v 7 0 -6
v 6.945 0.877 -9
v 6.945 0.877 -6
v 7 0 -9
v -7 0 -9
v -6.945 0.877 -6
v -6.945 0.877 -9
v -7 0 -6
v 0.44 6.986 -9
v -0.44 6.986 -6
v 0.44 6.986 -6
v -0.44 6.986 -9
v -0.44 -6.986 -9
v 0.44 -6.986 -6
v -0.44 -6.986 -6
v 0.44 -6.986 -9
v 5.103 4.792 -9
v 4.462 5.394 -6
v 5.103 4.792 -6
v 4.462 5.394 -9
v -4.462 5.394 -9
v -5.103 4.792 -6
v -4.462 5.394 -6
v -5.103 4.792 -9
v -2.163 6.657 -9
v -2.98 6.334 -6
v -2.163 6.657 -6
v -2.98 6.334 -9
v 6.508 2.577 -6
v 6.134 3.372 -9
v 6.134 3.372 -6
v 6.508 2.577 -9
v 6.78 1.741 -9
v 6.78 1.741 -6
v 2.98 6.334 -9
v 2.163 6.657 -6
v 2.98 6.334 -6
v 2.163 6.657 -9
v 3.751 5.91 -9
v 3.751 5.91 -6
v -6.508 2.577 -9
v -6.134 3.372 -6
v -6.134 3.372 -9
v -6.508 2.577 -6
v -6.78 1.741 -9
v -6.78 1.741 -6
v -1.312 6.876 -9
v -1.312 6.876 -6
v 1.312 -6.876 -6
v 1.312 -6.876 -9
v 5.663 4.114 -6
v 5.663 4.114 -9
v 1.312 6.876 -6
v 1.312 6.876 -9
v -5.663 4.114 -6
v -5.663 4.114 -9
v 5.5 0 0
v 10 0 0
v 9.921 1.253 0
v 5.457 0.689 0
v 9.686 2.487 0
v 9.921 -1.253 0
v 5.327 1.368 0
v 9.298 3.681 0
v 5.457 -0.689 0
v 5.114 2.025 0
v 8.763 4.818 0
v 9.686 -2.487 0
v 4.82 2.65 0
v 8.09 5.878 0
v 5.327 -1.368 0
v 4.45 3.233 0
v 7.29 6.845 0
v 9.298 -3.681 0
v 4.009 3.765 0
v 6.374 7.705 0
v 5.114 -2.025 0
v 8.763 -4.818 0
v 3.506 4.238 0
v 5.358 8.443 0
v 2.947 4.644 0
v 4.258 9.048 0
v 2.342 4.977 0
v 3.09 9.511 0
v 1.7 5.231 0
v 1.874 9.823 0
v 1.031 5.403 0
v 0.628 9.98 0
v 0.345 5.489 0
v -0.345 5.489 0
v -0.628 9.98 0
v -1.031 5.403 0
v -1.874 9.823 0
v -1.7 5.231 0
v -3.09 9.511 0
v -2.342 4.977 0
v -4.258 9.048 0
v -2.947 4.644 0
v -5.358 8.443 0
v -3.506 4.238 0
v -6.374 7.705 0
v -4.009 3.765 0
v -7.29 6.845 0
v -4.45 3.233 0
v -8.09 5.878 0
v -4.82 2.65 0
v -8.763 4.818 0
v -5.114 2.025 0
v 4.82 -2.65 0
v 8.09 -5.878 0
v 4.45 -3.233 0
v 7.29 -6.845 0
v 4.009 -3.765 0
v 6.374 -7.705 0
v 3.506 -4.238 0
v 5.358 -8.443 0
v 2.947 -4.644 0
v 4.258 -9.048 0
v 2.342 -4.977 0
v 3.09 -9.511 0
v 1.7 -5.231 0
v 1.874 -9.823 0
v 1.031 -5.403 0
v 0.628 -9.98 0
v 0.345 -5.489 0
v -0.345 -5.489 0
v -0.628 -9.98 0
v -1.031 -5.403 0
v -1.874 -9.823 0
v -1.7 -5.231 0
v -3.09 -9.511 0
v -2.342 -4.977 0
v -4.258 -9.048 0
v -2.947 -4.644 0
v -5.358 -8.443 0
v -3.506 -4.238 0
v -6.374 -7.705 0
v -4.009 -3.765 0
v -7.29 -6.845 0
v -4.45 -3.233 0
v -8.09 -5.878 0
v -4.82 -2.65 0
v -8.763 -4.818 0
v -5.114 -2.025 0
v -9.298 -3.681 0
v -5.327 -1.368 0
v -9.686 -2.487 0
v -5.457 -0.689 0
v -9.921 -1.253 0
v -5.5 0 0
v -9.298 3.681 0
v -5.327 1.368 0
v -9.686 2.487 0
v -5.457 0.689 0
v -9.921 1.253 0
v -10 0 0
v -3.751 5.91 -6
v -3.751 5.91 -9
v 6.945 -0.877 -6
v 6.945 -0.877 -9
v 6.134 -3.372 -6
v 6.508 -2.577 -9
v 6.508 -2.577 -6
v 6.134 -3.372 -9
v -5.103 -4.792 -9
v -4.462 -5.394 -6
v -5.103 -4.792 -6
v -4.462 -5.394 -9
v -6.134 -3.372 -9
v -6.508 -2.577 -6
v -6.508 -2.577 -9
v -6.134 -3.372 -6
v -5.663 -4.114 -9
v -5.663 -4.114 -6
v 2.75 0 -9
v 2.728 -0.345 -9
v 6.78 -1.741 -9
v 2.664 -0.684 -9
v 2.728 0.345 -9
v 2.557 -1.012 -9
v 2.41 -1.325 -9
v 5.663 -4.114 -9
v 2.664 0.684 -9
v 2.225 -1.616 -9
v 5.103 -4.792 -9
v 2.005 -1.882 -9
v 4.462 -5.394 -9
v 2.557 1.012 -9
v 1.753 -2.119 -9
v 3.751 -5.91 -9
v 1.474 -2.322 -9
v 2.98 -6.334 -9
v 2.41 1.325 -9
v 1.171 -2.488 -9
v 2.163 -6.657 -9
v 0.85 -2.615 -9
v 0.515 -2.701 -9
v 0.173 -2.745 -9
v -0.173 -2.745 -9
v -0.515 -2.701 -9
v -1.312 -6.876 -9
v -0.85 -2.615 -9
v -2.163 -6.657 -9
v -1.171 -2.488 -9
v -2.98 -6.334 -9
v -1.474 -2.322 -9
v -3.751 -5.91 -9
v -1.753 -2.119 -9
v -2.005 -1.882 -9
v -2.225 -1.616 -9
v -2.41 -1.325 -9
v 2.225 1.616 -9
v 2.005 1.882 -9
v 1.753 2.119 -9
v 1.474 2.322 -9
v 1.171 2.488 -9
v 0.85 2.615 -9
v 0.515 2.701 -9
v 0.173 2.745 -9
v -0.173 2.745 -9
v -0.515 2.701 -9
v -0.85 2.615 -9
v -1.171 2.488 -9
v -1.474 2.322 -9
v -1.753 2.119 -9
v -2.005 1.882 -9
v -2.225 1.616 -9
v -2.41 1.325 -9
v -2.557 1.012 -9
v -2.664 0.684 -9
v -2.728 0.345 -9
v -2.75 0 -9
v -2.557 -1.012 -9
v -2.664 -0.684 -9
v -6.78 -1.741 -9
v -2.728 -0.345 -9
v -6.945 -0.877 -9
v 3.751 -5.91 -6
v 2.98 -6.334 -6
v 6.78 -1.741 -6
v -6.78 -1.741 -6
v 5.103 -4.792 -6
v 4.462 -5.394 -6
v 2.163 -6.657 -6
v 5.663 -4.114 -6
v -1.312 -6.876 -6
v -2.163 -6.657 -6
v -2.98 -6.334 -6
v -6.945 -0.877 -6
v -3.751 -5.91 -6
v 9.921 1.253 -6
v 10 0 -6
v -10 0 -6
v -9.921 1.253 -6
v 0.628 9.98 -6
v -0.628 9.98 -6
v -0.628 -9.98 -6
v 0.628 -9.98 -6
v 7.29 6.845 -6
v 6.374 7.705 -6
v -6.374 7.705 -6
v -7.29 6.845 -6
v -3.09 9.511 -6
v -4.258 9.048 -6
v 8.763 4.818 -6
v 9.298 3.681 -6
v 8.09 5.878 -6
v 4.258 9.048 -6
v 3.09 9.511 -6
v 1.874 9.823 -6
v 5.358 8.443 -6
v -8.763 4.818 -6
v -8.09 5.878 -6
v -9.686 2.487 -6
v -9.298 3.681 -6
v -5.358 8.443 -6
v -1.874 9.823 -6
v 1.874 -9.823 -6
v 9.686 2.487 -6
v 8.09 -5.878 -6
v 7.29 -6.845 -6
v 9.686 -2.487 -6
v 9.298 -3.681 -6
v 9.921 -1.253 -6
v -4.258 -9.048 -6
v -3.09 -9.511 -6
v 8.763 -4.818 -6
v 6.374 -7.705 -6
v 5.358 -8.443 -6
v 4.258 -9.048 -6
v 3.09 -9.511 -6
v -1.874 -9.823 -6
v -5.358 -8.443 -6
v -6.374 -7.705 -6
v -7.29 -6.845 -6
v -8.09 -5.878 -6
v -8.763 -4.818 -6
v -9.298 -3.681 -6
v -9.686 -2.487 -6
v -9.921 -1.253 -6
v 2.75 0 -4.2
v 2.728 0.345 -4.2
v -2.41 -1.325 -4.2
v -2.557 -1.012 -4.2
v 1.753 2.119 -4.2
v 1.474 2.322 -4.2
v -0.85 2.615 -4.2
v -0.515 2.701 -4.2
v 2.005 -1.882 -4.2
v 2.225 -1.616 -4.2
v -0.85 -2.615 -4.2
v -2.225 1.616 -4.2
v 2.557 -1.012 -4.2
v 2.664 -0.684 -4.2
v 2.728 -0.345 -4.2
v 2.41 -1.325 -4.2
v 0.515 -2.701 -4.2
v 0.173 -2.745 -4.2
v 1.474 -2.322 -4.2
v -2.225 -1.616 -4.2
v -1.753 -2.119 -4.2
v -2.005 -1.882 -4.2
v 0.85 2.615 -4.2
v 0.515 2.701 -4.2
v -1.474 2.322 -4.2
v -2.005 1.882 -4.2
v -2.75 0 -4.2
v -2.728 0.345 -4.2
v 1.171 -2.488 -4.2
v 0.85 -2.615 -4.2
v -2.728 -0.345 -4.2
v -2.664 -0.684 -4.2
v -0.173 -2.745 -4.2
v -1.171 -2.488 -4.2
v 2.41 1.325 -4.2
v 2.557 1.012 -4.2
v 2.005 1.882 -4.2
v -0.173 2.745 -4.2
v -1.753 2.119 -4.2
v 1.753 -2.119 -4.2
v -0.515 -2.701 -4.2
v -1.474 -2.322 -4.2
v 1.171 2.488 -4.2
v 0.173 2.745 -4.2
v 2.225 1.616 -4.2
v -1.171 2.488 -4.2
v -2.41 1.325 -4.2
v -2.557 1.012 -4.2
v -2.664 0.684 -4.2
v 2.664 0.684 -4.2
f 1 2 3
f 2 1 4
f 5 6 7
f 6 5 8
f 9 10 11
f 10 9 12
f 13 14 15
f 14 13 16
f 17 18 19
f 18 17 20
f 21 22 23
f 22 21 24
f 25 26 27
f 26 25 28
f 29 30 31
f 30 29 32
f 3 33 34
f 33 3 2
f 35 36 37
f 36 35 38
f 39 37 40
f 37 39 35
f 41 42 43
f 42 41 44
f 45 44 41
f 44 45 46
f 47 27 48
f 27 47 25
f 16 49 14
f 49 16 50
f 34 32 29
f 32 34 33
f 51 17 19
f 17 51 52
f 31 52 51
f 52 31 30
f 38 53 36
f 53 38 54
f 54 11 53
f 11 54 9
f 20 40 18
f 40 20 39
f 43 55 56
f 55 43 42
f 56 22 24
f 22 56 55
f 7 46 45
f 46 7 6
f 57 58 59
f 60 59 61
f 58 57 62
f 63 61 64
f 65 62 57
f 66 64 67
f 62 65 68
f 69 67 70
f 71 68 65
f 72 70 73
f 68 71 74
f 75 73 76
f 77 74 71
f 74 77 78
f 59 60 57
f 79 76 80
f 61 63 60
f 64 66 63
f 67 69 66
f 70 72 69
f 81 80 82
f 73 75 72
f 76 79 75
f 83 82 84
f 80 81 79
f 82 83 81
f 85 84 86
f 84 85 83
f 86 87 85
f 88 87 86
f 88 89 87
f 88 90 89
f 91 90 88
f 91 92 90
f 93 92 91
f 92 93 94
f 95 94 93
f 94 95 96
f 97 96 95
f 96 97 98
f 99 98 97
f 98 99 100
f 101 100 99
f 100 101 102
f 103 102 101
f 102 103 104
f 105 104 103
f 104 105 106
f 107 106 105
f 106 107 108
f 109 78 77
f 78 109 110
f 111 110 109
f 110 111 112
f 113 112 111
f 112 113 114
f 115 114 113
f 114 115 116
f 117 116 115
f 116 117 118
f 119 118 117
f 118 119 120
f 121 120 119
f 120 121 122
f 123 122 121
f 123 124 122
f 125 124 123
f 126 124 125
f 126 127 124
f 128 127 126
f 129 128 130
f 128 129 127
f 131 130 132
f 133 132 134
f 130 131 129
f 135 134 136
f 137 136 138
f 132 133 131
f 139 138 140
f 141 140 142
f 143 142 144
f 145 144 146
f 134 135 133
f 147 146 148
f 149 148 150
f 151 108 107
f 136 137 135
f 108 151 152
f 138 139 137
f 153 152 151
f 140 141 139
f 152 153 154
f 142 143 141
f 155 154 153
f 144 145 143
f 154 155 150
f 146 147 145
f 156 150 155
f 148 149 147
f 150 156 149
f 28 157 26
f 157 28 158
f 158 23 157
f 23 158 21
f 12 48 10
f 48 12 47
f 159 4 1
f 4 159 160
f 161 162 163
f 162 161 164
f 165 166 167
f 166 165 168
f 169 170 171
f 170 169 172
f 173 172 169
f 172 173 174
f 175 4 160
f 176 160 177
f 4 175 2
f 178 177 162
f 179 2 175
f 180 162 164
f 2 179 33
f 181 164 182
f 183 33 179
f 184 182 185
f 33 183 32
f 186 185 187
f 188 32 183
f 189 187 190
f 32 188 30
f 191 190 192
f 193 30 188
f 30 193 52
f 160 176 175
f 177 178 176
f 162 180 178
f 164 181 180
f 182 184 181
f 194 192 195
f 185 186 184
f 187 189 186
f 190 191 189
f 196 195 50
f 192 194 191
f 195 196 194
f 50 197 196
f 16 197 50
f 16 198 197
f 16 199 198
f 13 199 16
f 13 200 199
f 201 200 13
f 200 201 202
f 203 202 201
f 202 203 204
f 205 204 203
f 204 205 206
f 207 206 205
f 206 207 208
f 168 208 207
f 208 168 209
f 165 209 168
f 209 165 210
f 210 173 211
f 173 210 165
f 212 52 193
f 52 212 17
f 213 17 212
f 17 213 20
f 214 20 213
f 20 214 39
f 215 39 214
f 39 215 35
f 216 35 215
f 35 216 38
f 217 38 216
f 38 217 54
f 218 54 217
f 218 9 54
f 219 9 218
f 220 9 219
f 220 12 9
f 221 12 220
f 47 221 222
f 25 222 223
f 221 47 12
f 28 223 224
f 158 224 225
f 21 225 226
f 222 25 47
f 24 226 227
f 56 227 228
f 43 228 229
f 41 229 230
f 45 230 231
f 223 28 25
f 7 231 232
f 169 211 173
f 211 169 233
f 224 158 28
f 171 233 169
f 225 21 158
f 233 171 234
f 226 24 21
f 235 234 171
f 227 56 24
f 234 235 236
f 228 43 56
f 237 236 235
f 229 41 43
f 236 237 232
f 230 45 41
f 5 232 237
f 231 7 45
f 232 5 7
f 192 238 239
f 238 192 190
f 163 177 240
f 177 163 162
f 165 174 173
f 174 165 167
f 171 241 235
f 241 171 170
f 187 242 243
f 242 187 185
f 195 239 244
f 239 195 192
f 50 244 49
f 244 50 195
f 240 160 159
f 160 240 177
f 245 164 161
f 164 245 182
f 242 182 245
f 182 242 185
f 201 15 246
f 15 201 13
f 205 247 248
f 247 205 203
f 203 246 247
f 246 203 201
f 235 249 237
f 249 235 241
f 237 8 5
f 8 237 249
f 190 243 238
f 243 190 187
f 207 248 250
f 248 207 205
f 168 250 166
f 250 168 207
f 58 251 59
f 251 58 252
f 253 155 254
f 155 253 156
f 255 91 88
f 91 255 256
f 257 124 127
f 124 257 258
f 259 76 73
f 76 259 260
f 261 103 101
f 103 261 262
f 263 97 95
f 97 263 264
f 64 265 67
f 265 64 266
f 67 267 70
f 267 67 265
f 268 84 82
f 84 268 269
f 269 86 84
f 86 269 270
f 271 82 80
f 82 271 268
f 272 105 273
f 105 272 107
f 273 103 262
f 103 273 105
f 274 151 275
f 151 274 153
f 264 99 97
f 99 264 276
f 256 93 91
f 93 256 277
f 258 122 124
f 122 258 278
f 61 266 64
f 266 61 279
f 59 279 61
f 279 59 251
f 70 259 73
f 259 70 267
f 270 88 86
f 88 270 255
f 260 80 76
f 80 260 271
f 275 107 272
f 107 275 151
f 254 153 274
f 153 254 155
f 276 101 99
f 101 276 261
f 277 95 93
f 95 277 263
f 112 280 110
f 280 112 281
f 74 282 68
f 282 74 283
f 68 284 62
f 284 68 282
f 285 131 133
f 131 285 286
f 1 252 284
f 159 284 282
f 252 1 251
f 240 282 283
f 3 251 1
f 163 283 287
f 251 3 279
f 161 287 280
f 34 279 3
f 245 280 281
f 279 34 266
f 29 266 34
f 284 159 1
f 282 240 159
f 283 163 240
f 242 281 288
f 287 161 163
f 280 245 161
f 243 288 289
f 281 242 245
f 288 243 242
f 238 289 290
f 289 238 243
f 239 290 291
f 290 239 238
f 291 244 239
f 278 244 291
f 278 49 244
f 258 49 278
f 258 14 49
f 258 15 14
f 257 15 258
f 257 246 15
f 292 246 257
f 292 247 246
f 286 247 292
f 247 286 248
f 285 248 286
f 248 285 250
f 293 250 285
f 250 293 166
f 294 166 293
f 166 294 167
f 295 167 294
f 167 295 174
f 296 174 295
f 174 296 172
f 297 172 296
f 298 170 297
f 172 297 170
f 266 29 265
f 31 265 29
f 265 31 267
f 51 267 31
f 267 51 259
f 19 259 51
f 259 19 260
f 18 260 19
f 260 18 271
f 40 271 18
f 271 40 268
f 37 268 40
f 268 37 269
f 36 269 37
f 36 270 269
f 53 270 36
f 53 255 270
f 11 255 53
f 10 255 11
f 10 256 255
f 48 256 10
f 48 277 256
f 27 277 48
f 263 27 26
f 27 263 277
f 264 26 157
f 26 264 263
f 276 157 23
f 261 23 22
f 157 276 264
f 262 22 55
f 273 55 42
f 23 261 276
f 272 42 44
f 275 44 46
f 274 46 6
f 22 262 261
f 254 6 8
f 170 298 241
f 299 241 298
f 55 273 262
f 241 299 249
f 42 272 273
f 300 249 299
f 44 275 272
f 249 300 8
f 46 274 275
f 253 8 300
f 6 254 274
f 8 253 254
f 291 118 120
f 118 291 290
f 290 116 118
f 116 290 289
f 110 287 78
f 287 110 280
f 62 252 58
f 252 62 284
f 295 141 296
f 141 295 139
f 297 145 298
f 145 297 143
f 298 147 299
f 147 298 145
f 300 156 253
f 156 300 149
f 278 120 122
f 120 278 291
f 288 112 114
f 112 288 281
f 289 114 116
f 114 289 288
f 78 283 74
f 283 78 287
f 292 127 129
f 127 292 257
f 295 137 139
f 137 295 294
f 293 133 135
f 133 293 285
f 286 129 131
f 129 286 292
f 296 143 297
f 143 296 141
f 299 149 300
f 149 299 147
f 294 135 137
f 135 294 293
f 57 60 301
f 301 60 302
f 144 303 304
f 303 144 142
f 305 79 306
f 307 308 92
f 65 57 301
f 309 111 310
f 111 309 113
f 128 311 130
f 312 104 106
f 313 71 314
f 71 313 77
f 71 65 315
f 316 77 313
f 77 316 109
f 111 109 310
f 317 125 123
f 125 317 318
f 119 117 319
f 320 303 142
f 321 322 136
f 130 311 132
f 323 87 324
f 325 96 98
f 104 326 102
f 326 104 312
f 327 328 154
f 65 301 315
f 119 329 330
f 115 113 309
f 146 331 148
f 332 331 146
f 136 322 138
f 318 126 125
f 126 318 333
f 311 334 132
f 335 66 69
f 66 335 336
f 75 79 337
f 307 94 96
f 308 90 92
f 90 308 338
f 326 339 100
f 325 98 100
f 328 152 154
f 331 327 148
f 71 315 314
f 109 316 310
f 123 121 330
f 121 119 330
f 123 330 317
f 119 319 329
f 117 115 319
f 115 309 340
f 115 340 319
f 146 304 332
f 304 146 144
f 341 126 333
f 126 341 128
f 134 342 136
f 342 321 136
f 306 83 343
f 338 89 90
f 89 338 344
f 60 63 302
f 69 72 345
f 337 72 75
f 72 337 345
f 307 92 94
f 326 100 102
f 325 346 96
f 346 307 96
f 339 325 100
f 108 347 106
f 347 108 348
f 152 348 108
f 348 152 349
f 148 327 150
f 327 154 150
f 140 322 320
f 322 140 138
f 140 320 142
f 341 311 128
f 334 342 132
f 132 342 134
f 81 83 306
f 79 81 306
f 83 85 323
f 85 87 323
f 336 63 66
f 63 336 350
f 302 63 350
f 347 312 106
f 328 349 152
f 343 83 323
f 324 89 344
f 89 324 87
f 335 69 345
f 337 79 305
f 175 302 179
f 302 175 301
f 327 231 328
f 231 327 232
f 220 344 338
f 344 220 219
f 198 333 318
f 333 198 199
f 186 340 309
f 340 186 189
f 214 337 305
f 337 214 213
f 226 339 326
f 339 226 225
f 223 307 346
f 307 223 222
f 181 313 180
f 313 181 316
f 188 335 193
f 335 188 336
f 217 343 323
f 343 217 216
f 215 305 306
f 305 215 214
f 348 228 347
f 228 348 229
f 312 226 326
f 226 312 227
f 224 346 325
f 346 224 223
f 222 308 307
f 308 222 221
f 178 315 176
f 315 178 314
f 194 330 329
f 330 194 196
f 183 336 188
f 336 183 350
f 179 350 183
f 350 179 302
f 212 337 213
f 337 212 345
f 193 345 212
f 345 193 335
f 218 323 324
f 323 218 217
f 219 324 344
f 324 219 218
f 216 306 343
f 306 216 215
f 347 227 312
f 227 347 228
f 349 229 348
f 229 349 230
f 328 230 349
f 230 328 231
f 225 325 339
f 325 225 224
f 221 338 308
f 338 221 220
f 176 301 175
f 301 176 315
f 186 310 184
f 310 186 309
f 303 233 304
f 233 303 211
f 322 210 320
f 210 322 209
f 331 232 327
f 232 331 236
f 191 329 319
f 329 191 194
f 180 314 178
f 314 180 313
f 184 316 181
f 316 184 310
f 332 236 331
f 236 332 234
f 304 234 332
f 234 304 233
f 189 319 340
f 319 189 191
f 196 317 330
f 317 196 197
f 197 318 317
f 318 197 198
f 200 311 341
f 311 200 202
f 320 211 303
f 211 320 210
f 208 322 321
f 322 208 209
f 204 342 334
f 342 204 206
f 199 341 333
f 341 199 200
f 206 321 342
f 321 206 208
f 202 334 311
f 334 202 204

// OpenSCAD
$fn = 50;


difference() {
	union() {
		translate(v = [0, 0, -9.0000000000]) {
			cylinder(h = 9, r = 7.0000000000);
		}
		translate(v = [0, 0, -6.0000000000]) {
			cylinder(h = 6, r = 10.0000000000);
		}
	}
	union() {
		translate(v = [0, 0, 0]) {
			rotate(a = [0, 0, 0]) {
				difference() {
					union() {
						#translate(v = [0, 0, -9.0000000000]) {
							cylinder(h = 9, r = 2.2500000000);
						}
						#translate(v = [0, 0, -4.2000000000]) {
							cylinder(h = 4.2000000000, r = 7.0000000000, r1 = 2.7500000000, r2 = 5.5000000000);
						}
						#translate(v = [0, 0, -9.0000000000]) {
							cylinder(h = 9, r = 2.7500000000);
						}
						#translate(v = [0, 0, -9.0000000000]) {
							cylinder(h = 9, r = 2.2500000000);
						}
					}
					union();
				}
			}
		}
	}
}
